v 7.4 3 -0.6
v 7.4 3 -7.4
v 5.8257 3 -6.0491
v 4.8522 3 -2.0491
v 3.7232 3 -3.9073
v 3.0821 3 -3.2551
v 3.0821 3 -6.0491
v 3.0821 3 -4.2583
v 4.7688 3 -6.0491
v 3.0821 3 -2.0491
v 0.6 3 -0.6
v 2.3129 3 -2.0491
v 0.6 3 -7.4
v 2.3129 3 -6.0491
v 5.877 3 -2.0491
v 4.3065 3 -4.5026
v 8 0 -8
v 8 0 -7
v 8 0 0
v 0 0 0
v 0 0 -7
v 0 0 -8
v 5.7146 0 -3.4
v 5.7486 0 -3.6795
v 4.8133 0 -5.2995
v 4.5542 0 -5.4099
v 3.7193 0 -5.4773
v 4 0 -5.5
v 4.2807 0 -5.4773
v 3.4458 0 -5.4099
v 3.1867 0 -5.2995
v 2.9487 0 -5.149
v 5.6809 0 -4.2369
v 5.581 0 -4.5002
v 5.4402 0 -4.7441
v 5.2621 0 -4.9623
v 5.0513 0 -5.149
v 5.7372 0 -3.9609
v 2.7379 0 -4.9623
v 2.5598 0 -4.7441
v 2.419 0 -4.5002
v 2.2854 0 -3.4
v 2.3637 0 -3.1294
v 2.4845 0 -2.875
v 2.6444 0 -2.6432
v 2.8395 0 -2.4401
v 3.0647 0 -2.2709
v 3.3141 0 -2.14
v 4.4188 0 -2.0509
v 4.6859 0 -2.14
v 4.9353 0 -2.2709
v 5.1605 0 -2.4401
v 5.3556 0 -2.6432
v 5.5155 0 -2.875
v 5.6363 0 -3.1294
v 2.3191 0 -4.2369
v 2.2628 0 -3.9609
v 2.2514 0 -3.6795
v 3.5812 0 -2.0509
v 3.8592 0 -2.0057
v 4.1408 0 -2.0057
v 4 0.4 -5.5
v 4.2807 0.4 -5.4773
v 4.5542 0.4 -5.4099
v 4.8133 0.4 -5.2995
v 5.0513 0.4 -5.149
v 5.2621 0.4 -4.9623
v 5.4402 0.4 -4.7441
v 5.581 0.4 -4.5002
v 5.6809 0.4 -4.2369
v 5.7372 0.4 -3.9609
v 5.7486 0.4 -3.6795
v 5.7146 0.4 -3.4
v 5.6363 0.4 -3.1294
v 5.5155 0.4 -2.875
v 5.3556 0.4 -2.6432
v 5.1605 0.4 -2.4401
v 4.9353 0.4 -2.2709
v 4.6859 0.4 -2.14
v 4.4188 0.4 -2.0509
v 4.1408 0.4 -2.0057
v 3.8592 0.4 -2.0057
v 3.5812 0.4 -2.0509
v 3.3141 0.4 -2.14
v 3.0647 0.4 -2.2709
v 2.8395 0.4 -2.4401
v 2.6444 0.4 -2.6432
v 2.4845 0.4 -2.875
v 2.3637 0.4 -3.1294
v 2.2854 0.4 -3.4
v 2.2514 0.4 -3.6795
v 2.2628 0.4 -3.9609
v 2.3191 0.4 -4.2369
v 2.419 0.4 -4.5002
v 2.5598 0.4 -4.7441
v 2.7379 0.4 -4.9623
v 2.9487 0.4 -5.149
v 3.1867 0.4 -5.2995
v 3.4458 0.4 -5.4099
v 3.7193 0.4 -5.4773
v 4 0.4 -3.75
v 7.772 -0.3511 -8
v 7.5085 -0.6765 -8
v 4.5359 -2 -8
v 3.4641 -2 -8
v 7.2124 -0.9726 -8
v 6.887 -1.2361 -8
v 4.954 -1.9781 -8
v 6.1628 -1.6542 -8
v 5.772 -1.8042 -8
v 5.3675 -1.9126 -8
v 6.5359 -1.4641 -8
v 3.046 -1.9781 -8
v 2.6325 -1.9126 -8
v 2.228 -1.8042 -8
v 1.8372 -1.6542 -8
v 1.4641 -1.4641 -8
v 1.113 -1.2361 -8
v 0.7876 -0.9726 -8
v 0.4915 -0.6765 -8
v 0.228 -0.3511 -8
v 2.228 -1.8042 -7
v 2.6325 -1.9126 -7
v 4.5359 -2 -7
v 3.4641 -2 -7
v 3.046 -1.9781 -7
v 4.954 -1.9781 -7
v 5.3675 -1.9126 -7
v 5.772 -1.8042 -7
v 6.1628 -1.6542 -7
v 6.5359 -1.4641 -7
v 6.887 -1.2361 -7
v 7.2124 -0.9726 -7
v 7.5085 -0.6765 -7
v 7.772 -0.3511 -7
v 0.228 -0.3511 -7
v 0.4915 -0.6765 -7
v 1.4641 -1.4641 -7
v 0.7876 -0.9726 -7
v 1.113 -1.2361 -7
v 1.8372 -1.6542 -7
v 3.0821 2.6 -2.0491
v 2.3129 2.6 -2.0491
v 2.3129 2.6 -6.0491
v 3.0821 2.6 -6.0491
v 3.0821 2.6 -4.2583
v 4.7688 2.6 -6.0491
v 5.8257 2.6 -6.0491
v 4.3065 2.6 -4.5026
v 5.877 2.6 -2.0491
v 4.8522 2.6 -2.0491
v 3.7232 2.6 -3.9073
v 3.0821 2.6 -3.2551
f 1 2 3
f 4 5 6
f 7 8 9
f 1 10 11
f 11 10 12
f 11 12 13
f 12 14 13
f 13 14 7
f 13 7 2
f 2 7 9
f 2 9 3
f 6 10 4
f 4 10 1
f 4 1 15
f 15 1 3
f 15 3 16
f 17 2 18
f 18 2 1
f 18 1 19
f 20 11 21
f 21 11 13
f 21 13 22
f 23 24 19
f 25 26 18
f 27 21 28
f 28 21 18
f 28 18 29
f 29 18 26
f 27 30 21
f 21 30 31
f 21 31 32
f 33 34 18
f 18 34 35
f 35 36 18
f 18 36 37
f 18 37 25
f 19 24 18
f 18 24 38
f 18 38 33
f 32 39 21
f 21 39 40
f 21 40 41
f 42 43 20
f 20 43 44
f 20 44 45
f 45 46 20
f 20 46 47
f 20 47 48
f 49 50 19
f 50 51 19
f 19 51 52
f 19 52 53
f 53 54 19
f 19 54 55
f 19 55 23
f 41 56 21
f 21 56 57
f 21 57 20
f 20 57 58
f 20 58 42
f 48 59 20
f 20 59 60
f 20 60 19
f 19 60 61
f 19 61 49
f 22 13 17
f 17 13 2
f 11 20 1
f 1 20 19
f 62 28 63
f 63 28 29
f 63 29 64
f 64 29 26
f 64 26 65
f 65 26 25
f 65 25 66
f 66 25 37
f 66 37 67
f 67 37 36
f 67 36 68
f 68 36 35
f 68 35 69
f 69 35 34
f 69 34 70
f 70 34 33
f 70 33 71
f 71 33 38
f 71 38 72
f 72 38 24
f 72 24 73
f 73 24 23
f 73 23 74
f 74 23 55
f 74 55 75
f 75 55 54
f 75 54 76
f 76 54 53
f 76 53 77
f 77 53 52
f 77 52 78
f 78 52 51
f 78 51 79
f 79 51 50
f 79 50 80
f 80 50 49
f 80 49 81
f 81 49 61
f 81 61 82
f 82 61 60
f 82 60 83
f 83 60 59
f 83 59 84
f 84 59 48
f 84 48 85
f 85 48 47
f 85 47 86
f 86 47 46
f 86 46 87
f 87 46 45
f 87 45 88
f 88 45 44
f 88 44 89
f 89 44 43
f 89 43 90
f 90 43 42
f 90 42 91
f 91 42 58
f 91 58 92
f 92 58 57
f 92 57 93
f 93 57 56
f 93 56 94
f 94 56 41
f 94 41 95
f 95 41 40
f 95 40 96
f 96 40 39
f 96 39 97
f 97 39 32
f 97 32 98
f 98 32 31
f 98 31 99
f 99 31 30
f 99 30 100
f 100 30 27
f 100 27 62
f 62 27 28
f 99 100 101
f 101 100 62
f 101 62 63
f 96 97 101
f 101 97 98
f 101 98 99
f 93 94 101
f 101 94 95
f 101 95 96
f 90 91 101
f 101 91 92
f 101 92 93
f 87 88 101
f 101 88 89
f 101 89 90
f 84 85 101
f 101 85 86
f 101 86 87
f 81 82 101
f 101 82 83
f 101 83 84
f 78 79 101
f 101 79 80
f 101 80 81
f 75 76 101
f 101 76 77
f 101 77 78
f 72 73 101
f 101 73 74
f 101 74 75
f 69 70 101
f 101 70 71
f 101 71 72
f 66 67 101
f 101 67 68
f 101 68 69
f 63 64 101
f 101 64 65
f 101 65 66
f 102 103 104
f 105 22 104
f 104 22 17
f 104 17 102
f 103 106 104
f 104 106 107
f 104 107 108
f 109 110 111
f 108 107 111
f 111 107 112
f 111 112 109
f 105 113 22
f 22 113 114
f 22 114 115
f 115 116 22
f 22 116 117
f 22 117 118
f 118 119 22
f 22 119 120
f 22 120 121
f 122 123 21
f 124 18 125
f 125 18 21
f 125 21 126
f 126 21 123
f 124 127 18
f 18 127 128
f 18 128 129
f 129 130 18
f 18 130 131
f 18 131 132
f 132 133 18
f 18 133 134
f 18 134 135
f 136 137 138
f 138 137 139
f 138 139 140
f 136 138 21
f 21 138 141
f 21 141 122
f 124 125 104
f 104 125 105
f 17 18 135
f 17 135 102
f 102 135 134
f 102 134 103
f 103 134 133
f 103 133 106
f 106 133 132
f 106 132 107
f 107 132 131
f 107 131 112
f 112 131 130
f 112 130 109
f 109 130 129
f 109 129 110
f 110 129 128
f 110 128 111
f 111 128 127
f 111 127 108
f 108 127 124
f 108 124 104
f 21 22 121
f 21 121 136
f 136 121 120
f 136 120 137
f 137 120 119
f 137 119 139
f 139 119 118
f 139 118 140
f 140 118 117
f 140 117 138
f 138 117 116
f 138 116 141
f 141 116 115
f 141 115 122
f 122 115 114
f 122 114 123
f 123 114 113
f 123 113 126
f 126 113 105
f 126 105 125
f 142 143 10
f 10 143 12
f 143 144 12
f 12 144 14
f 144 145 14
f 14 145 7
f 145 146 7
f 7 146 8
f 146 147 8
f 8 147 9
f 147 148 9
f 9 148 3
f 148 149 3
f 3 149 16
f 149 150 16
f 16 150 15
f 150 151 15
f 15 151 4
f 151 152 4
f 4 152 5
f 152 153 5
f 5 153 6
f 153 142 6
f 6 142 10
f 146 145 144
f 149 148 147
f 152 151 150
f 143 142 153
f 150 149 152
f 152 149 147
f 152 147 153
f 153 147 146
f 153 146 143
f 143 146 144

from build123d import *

# Parameters (mm, degrees)
SKETCH1_W               = 8
SKETCH1_H               = 8
BOSS_EXTRUDE1_DEPTH     = 3
CUT_EXTRUDE1_DEPTH      = 12.704699911
CUT_EXTRUDE1_DEPTH_BACK = 12.704699911
CUT_EXTRUDE2_DEPTH      = 11
SKETCH4_R               = 1.75
CUT_EXTRUDE3_DEPTH      = 0.4
SKETCH5_W               = 8
SKETCH5_H               = 1
BOSS_EXTRUDE2_DEPTH     = 2
FILLET1_R               = 4
CUT_EXTRUDE4_DEPTH      = 0.4


with BuildPart() as part:
    # Sketch1 → Boss-Extrude1 (new body)
    with BuildSketch(Plane(origin=(0, 0, 0), x_dir=(1, 0, 0), z_dir=(0, 1, 0))):
        with Locations((4, 4)):
            Rectangle(SKETCH1_W, SKETCH1_H)
    extrude(amount=BOSS_EXTRUDE1_DEPTH)

    # Sketch2 → Cut-Extrude1 (cut, two sides: drawn at the far end of the back side and taken through both)
    with BuildSketch(Plane.XY.offset(-CUT_EXTRUDE1_DEPTH_BACK)):
        Polygon((0, 0), (0.6, 3), (0, 3), align=None)
        Polygon((8, 0), (7.4, 3), (8, 3), align=None)
    extrude(amount=CUT_EXTRUDE1_DEPTH + CUT_EXTRUDE1_DEPTH_BACK, mode=Mode.SUBTRACT)

    # Sketch3 → Cut-Extrude2 (cut)
    with BuildSketch(Plane(origin=(0, 0, 0), x_dir=(0, 0, -1), z_dir=(1, 0, 0))):
        Polygon((0, 0), (0.6, 3), (0, 3), align=None)
        Polygon((8, 3), (7.4, 3), (8, 0), align=None)
    extrude(amount=CUT_EXTRUDE2_DEPTH, mode=Mode.SUBTRACT)

    # Sketch4 → Cut-Extrude3 (cut)
    with BuildSketch(Plane.XZ):
        with Locations(Location((4, -3.75, 0), (0, 0, 270))):
            Circle(SKETCH4_R)
    extrude(amount=-CUT_EXTRUDE3_DEPTH, mode=Mode.SUBTRACT)

    # Sketch5 → Boss-Extrude2 (add)
    with BuildSketch(Plane.XZ):
        with Locations((4, -7.5)):
            Rectangle(SKETCH5_W, SKETCH5_H)
    extrude(amount=BOSS_EXTRUDE2_DEPTH)

    # Fillet1
    # the kernel refuses this fillet: 4 mm, written as the material it takes off along each edge
    with BuildSketch(Plane(origin=(8, -2, -16.660254038), x_dir=(0, 1, 0), z_dir=(0, 0, 1)), Plane(origin=(0, -2, 1.660254038), x_dir=(0, 1, 0), z_dir=(0, 0, -1))) as fillet1_piece_1:
        with BuildLine():
            CenterArc((4, 3.464101615), FILLET1_R, 180, 60)
            Line((0, 3.464101615), (-0.08, 3.464101615))
            Line((-0.08, 3.464101615), (-0.08, 0))
            Line((-0.08, 0), (0, -0.08))
            ThreePointArc((0, -0.08), (1, -0.08), (1.96, -0.069282032))
            Line((1.96, -0.069282032), (2, 0))
        make_face()
    extrude(amount=18.320508076, mode=Mode.SUBTRACT)

    # Sketch6 → Cut-Extrude4 (cut)
    with BuildSketch(Plane(origin=(0, 3, 0), x_dir=(1, 0, 0), z_dir=(0, 1, 0))):
        Polygon((2.312898911, 2.049121591), (2.312898911, 6.049121591), (3.08212968, 6.049121591), (3.08212968, 4.258256206), (4.768828398, 6.049121591), (5.825719424, 6.049121591), (4.306488654, 4.502647232), (5.877001475, 2.049121591), (4.852161731, 2.049121591), (3.723155321, 3.907294667), (3.08212968, 3.255051078), (3.08212968, 2.049121591), align=None)
    extrude(amount=-CUT_EXTRUDE4_DEPTH, mode=Mode.SUBTRACT)


solid = part.part
